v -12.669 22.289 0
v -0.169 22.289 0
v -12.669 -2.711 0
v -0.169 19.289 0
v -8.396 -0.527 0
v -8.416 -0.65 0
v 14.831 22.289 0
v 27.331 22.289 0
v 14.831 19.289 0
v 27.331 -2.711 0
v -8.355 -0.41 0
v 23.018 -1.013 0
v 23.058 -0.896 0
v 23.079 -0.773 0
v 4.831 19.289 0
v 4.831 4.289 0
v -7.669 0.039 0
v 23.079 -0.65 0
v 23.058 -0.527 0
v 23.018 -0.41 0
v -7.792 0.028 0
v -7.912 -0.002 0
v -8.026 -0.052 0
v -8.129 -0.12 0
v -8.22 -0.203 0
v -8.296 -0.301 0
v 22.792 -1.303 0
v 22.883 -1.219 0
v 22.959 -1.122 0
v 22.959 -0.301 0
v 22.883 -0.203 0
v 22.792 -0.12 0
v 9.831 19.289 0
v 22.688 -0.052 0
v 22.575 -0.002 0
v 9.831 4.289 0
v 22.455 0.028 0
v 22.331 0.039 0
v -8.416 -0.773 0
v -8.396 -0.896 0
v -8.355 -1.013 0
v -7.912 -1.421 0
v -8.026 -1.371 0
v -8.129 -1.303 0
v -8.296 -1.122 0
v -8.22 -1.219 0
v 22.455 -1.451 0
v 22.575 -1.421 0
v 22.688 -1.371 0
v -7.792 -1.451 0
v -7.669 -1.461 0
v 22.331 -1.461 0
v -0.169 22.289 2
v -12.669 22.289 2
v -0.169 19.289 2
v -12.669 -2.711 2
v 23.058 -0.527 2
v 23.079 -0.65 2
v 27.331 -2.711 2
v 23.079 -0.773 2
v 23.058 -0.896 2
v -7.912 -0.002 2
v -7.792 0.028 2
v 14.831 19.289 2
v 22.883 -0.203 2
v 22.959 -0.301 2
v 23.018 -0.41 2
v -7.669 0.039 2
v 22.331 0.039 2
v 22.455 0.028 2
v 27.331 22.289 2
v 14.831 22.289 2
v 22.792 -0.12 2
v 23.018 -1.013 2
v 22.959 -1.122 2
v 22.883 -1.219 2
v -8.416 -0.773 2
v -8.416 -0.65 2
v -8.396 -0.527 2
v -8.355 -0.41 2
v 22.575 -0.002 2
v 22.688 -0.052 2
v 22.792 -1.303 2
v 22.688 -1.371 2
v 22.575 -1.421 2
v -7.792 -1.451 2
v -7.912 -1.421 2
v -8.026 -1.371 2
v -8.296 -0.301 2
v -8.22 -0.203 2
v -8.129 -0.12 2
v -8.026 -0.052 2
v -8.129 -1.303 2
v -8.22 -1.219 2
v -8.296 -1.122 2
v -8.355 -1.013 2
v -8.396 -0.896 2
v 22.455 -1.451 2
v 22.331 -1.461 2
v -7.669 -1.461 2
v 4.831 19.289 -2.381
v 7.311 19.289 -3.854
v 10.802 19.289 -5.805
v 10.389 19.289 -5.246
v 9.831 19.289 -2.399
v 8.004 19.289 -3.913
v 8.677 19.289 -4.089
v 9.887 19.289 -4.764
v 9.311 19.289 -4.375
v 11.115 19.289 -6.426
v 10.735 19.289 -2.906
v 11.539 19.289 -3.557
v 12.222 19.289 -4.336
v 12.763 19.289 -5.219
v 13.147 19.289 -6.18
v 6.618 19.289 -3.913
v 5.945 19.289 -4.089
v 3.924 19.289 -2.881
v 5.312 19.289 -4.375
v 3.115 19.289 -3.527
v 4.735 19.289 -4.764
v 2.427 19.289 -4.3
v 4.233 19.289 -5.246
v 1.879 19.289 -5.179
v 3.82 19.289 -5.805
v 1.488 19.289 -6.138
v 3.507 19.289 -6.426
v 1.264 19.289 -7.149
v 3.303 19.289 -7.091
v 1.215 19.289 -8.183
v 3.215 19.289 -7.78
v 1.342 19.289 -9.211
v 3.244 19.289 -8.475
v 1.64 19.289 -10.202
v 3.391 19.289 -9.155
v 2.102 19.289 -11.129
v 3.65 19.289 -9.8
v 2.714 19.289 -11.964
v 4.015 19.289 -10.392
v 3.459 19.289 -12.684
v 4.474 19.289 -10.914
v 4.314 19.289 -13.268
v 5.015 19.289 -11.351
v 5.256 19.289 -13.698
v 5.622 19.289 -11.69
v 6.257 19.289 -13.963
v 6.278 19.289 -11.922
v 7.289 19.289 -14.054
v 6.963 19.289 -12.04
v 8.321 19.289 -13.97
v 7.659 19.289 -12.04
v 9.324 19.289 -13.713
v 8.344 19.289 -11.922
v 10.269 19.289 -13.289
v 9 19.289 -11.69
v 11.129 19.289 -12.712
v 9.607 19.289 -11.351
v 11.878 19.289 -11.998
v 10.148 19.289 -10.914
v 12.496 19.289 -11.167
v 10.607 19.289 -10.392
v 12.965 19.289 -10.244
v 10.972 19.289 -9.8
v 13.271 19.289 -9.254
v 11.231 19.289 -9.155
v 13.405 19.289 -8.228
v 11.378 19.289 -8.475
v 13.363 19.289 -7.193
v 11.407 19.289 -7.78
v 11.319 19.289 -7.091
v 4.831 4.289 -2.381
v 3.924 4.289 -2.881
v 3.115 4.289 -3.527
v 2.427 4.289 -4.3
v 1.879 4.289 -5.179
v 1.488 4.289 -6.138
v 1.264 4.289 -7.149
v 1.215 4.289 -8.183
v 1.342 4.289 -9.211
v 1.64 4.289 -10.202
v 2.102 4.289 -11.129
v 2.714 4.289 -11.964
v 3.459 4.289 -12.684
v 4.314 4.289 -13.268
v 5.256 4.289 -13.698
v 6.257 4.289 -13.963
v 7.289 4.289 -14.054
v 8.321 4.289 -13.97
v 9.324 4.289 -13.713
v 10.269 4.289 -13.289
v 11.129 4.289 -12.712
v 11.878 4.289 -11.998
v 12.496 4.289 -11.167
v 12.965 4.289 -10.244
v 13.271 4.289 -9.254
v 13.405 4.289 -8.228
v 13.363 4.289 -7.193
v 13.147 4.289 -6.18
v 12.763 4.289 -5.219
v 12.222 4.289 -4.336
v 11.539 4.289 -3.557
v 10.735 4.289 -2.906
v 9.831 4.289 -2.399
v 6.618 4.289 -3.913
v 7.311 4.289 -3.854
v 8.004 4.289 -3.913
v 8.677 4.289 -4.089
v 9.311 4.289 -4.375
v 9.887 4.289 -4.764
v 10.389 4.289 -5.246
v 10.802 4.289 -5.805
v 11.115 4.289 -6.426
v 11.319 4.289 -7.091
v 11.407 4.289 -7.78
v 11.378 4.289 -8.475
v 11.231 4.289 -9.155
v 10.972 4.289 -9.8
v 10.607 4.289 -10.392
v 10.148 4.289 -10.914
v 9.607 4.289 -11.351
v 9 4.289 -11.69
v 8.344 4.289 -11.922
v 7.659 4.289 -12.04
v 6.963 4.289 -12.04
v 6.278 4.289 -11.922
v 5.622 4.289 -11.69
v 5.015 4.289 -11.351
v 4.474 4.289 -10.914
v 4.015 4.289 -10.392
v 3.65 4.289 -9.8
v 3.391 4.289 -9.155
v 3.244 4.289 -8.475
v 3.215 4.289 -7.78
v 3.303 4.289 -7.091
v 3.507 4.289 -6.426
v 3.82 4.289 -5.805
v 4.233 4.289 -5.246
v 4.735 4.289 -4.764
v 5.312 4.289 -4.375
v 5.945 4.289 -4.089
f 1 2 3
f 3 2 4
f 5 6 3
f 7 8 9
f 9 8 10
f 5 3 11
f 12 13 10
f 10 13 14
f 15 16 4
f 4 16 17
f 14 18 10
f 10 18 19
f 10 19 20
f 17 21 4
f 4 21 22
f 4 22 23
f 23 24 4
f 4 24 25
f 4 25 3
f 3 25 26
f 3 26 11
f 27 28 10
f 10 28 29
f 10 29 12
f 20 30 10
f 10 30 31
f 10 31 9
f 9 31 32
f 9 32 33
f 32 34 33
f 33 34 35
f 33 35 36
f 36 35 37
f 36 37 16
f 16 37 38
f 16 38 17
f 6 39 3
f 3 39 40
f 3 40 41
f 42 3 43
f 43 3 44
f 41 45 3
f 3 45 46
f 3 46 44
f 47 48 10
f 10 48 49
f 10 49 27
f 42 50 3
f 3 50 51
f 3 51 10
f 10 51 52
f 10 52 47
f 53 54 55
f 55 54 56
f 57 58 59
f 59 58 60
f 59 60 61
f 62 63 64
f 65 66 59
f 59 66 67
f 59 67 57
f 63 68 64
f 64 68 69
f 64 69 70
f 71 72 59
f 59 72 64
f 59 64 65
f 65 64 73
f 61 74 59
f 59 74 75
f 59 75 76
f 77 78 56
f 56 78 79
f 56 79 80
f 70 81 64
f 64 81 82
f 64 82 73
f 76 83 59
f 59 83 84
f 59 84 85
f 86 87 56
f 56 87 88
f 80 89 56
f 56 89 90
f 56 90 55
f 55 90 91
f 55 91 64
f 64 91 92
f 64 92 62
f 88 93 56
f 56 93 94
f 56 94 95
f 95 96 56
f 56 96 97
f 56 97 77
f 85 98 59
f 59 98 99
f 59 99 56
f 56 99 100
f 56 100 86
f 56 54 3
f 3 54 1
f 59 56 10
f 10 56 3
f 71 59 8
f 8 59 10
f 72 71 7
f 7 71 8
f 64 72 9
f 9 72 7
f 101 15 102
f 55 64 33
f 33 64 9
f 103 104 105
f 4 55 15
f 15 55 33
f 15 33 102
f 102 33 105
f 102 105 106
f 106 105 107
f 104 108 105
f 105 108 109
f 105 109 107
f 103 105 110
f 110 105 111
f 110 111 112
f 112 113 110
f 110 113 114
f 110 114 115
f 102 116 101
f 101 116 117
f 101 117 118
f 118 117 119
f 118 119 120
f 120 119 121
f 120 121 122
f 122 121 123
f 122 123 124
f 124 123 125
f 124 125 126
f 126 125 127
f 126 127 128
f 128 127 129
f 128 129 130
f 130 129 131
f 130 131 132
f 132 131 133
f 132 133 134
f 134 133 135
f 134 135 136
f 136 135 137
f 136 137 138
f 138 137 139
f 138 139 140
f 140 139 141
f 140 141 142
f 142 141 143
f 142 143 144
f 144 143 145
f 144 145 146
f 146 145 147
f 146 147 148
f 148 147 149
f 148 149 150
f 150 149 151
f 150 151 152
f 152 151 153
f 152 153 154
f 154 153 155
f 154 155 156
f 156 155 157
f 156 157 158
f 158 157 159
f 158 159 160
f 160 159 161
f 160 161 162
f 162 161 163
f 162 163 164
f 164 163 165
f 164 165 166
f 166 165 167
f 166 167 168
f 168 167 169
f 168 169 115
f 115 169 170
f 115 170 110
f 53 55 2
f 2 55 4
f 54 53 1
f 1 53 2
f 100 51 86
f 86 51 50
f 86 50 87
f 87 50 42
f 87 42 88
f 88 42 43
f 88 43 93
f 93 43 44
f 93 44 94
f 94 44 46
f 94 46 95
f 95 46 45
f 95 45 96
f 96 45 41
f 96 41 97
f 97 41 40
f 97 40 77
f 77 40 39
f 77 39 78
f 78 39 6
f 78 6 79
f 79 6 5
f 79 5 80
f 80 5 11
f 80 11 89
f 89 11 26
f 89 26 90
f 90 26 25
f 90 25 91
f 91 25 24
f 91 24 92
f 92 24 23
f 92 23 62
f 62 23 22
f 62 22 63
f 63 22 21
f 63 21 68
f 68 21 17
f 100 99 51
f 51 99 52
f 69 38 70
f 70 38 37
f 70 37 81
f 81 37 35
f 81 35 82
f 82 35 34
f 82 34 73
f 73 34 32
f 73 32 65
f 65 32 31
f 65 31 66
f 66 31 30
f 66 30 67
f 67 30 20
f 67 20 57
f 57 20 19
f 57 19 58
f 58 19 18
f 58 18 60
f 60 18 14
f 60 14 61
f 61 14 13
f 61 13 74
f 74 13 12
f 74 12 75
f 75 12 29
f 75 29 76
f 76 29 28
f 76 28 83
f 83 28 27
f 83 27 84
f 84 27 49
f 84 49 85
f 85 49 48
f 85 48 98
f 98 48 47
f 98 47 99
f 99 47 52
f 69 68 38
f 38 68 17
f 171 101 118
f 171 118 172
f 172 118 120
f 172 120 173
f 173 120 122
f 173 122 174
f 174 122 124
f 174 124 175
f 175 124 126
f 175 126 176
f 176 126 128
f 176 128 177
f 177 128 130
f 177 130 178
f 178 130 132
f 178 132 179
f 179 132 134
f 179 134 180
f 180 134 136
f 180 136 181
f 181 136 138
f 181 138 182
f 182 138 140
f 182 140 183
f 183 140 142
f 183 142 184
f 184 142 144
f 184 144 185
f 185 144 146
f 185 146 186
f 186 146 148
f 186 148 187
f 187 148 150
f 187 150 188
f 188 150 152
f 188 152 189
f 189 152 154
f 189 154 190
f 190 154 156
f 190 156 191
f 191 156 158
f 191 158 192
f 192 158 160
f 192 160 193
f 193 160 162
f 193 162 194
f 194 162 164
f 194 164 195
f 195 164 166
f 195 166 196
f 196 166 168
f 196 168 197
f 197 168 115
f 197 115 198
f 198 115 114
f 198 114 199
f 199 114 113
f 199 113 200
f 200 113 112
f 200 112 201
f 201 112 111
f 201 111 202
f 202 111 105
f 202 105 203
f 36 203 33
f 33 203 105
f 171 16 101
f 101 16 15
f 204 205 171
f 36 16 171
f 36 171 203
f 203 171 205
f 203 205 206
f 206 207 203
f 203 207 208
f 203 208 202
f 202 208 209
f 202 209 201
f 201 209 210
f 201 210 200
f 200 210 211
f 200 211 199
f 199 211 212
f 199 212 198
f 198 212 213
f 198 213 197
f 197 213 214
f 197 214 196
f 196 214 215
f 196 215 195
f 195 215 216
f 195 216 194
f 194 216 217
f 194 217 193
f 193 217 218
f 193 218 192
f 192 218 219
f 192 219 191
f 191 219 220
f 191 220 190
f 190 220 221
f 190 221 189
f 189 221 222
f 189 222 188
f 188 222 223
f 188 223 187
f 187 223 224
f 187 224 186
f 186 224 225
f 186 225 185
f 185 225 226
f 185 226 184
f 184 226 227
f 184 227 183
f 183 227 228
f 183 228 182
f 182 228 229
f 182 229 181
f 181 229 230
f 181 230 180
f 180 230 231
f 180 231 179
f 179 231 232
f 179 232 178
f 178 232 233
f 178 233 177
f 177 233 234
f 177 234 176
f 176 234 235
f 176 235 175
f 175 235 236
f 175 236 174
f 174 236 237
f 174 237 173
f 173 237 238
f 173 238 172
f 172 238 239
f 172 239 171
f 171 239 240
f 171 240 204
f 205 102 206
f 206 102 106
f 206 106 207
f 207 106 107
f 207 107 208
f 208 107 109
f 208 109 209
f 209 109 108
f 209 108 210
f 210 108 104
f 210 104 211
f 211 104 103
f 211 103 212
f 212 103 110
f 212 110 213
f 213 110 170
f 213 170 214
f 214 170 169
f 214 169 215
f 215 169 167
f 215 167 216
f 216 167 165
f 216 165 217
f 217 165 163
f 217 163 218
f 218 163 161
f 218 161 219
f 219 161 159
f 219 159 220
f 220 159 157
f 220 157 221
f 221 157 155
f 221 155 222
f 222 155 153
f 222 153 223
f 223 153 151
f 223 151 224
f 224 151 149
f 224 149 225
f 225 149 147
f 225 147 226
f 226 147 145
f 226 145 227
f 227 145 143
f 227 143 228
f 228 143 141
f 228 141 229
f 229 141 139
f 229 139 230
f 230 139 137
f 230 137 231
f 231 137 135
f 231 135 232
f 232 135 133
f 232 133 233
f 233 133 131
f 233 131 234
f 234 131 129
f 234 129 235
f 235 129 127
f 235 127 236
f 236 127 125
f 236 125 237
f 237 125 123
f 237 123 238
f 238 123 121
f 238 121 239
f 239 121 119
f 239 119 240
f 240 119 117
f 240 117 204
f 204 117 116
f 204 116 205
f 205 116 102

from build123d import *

# Parameters (mm, degrees)
EXTRUDE_1_DEPTH = 2
SKETCH_2_R      = 4.1
EXTRUDE_2_DEPTH = 15


with BuildPart() as part:
    # 草图1 → 凸台-拉伸1 (new body)
    with BuildSketch(Plane.XY):
        Polygon((-12.668616293, 22.288540635), (-0.168616293, 22.288540635), (-0.168616293, 19.288540635), (14.831383707, 19.288540635), (14.831383707, 22.288540635), (27.331383707, 22.288540635), (27.331383707, -2.711459365), (-12.668616293, -2.711459365), align=None)
        with BuildLine():
            Line((-7.668616293, 0.038540635), (22.331383707, 0.038540635))
            ThreePointArc((22.331383707, 0.038540635), (23.081383707, -0.711459365), (22.331383707, -1.461459365))
            Line((22.331383707, -1.461459365), (-7.668616293, -1.461459365))
            ThreePointArc((-7.668616293, -1.461459365), (-8.418616293, -0.711459365), (-7.668616293, 0.038540635))
        make_face(mode=Mode.SUBTRACT)
    extrude(amount=EXTRUDE_1_DEPTH)

    # 草图2 → 凸台-拉伸2 (add)
    with BuildSketch(Plane(origin=(0, 19.288540635, 0), x_dir=(1, 0, 0), z_dir=(0, 1, 0))):
        with BuildLine():
            Line((4.831383707, 2.381058819), (4.831383707, 0))
            Line((4.831383707, 0), (9.831383707, 0))
            Line((9.831383707, 0), (9.831383707, 2.399323324))
            ThreePointArc((9.831383707, 2.399323324), (7.288775956, 14.054276854), (4.831383707, 2.381058819))
        make_face()
        with Locations((7.311058504, 7.954317551)):
            Circle(SKETCH_2_R, mode=Mode.SUBTRACT)
    extrude(amount=-EXTRUDE_2_DEPTH)


solid = part.part
